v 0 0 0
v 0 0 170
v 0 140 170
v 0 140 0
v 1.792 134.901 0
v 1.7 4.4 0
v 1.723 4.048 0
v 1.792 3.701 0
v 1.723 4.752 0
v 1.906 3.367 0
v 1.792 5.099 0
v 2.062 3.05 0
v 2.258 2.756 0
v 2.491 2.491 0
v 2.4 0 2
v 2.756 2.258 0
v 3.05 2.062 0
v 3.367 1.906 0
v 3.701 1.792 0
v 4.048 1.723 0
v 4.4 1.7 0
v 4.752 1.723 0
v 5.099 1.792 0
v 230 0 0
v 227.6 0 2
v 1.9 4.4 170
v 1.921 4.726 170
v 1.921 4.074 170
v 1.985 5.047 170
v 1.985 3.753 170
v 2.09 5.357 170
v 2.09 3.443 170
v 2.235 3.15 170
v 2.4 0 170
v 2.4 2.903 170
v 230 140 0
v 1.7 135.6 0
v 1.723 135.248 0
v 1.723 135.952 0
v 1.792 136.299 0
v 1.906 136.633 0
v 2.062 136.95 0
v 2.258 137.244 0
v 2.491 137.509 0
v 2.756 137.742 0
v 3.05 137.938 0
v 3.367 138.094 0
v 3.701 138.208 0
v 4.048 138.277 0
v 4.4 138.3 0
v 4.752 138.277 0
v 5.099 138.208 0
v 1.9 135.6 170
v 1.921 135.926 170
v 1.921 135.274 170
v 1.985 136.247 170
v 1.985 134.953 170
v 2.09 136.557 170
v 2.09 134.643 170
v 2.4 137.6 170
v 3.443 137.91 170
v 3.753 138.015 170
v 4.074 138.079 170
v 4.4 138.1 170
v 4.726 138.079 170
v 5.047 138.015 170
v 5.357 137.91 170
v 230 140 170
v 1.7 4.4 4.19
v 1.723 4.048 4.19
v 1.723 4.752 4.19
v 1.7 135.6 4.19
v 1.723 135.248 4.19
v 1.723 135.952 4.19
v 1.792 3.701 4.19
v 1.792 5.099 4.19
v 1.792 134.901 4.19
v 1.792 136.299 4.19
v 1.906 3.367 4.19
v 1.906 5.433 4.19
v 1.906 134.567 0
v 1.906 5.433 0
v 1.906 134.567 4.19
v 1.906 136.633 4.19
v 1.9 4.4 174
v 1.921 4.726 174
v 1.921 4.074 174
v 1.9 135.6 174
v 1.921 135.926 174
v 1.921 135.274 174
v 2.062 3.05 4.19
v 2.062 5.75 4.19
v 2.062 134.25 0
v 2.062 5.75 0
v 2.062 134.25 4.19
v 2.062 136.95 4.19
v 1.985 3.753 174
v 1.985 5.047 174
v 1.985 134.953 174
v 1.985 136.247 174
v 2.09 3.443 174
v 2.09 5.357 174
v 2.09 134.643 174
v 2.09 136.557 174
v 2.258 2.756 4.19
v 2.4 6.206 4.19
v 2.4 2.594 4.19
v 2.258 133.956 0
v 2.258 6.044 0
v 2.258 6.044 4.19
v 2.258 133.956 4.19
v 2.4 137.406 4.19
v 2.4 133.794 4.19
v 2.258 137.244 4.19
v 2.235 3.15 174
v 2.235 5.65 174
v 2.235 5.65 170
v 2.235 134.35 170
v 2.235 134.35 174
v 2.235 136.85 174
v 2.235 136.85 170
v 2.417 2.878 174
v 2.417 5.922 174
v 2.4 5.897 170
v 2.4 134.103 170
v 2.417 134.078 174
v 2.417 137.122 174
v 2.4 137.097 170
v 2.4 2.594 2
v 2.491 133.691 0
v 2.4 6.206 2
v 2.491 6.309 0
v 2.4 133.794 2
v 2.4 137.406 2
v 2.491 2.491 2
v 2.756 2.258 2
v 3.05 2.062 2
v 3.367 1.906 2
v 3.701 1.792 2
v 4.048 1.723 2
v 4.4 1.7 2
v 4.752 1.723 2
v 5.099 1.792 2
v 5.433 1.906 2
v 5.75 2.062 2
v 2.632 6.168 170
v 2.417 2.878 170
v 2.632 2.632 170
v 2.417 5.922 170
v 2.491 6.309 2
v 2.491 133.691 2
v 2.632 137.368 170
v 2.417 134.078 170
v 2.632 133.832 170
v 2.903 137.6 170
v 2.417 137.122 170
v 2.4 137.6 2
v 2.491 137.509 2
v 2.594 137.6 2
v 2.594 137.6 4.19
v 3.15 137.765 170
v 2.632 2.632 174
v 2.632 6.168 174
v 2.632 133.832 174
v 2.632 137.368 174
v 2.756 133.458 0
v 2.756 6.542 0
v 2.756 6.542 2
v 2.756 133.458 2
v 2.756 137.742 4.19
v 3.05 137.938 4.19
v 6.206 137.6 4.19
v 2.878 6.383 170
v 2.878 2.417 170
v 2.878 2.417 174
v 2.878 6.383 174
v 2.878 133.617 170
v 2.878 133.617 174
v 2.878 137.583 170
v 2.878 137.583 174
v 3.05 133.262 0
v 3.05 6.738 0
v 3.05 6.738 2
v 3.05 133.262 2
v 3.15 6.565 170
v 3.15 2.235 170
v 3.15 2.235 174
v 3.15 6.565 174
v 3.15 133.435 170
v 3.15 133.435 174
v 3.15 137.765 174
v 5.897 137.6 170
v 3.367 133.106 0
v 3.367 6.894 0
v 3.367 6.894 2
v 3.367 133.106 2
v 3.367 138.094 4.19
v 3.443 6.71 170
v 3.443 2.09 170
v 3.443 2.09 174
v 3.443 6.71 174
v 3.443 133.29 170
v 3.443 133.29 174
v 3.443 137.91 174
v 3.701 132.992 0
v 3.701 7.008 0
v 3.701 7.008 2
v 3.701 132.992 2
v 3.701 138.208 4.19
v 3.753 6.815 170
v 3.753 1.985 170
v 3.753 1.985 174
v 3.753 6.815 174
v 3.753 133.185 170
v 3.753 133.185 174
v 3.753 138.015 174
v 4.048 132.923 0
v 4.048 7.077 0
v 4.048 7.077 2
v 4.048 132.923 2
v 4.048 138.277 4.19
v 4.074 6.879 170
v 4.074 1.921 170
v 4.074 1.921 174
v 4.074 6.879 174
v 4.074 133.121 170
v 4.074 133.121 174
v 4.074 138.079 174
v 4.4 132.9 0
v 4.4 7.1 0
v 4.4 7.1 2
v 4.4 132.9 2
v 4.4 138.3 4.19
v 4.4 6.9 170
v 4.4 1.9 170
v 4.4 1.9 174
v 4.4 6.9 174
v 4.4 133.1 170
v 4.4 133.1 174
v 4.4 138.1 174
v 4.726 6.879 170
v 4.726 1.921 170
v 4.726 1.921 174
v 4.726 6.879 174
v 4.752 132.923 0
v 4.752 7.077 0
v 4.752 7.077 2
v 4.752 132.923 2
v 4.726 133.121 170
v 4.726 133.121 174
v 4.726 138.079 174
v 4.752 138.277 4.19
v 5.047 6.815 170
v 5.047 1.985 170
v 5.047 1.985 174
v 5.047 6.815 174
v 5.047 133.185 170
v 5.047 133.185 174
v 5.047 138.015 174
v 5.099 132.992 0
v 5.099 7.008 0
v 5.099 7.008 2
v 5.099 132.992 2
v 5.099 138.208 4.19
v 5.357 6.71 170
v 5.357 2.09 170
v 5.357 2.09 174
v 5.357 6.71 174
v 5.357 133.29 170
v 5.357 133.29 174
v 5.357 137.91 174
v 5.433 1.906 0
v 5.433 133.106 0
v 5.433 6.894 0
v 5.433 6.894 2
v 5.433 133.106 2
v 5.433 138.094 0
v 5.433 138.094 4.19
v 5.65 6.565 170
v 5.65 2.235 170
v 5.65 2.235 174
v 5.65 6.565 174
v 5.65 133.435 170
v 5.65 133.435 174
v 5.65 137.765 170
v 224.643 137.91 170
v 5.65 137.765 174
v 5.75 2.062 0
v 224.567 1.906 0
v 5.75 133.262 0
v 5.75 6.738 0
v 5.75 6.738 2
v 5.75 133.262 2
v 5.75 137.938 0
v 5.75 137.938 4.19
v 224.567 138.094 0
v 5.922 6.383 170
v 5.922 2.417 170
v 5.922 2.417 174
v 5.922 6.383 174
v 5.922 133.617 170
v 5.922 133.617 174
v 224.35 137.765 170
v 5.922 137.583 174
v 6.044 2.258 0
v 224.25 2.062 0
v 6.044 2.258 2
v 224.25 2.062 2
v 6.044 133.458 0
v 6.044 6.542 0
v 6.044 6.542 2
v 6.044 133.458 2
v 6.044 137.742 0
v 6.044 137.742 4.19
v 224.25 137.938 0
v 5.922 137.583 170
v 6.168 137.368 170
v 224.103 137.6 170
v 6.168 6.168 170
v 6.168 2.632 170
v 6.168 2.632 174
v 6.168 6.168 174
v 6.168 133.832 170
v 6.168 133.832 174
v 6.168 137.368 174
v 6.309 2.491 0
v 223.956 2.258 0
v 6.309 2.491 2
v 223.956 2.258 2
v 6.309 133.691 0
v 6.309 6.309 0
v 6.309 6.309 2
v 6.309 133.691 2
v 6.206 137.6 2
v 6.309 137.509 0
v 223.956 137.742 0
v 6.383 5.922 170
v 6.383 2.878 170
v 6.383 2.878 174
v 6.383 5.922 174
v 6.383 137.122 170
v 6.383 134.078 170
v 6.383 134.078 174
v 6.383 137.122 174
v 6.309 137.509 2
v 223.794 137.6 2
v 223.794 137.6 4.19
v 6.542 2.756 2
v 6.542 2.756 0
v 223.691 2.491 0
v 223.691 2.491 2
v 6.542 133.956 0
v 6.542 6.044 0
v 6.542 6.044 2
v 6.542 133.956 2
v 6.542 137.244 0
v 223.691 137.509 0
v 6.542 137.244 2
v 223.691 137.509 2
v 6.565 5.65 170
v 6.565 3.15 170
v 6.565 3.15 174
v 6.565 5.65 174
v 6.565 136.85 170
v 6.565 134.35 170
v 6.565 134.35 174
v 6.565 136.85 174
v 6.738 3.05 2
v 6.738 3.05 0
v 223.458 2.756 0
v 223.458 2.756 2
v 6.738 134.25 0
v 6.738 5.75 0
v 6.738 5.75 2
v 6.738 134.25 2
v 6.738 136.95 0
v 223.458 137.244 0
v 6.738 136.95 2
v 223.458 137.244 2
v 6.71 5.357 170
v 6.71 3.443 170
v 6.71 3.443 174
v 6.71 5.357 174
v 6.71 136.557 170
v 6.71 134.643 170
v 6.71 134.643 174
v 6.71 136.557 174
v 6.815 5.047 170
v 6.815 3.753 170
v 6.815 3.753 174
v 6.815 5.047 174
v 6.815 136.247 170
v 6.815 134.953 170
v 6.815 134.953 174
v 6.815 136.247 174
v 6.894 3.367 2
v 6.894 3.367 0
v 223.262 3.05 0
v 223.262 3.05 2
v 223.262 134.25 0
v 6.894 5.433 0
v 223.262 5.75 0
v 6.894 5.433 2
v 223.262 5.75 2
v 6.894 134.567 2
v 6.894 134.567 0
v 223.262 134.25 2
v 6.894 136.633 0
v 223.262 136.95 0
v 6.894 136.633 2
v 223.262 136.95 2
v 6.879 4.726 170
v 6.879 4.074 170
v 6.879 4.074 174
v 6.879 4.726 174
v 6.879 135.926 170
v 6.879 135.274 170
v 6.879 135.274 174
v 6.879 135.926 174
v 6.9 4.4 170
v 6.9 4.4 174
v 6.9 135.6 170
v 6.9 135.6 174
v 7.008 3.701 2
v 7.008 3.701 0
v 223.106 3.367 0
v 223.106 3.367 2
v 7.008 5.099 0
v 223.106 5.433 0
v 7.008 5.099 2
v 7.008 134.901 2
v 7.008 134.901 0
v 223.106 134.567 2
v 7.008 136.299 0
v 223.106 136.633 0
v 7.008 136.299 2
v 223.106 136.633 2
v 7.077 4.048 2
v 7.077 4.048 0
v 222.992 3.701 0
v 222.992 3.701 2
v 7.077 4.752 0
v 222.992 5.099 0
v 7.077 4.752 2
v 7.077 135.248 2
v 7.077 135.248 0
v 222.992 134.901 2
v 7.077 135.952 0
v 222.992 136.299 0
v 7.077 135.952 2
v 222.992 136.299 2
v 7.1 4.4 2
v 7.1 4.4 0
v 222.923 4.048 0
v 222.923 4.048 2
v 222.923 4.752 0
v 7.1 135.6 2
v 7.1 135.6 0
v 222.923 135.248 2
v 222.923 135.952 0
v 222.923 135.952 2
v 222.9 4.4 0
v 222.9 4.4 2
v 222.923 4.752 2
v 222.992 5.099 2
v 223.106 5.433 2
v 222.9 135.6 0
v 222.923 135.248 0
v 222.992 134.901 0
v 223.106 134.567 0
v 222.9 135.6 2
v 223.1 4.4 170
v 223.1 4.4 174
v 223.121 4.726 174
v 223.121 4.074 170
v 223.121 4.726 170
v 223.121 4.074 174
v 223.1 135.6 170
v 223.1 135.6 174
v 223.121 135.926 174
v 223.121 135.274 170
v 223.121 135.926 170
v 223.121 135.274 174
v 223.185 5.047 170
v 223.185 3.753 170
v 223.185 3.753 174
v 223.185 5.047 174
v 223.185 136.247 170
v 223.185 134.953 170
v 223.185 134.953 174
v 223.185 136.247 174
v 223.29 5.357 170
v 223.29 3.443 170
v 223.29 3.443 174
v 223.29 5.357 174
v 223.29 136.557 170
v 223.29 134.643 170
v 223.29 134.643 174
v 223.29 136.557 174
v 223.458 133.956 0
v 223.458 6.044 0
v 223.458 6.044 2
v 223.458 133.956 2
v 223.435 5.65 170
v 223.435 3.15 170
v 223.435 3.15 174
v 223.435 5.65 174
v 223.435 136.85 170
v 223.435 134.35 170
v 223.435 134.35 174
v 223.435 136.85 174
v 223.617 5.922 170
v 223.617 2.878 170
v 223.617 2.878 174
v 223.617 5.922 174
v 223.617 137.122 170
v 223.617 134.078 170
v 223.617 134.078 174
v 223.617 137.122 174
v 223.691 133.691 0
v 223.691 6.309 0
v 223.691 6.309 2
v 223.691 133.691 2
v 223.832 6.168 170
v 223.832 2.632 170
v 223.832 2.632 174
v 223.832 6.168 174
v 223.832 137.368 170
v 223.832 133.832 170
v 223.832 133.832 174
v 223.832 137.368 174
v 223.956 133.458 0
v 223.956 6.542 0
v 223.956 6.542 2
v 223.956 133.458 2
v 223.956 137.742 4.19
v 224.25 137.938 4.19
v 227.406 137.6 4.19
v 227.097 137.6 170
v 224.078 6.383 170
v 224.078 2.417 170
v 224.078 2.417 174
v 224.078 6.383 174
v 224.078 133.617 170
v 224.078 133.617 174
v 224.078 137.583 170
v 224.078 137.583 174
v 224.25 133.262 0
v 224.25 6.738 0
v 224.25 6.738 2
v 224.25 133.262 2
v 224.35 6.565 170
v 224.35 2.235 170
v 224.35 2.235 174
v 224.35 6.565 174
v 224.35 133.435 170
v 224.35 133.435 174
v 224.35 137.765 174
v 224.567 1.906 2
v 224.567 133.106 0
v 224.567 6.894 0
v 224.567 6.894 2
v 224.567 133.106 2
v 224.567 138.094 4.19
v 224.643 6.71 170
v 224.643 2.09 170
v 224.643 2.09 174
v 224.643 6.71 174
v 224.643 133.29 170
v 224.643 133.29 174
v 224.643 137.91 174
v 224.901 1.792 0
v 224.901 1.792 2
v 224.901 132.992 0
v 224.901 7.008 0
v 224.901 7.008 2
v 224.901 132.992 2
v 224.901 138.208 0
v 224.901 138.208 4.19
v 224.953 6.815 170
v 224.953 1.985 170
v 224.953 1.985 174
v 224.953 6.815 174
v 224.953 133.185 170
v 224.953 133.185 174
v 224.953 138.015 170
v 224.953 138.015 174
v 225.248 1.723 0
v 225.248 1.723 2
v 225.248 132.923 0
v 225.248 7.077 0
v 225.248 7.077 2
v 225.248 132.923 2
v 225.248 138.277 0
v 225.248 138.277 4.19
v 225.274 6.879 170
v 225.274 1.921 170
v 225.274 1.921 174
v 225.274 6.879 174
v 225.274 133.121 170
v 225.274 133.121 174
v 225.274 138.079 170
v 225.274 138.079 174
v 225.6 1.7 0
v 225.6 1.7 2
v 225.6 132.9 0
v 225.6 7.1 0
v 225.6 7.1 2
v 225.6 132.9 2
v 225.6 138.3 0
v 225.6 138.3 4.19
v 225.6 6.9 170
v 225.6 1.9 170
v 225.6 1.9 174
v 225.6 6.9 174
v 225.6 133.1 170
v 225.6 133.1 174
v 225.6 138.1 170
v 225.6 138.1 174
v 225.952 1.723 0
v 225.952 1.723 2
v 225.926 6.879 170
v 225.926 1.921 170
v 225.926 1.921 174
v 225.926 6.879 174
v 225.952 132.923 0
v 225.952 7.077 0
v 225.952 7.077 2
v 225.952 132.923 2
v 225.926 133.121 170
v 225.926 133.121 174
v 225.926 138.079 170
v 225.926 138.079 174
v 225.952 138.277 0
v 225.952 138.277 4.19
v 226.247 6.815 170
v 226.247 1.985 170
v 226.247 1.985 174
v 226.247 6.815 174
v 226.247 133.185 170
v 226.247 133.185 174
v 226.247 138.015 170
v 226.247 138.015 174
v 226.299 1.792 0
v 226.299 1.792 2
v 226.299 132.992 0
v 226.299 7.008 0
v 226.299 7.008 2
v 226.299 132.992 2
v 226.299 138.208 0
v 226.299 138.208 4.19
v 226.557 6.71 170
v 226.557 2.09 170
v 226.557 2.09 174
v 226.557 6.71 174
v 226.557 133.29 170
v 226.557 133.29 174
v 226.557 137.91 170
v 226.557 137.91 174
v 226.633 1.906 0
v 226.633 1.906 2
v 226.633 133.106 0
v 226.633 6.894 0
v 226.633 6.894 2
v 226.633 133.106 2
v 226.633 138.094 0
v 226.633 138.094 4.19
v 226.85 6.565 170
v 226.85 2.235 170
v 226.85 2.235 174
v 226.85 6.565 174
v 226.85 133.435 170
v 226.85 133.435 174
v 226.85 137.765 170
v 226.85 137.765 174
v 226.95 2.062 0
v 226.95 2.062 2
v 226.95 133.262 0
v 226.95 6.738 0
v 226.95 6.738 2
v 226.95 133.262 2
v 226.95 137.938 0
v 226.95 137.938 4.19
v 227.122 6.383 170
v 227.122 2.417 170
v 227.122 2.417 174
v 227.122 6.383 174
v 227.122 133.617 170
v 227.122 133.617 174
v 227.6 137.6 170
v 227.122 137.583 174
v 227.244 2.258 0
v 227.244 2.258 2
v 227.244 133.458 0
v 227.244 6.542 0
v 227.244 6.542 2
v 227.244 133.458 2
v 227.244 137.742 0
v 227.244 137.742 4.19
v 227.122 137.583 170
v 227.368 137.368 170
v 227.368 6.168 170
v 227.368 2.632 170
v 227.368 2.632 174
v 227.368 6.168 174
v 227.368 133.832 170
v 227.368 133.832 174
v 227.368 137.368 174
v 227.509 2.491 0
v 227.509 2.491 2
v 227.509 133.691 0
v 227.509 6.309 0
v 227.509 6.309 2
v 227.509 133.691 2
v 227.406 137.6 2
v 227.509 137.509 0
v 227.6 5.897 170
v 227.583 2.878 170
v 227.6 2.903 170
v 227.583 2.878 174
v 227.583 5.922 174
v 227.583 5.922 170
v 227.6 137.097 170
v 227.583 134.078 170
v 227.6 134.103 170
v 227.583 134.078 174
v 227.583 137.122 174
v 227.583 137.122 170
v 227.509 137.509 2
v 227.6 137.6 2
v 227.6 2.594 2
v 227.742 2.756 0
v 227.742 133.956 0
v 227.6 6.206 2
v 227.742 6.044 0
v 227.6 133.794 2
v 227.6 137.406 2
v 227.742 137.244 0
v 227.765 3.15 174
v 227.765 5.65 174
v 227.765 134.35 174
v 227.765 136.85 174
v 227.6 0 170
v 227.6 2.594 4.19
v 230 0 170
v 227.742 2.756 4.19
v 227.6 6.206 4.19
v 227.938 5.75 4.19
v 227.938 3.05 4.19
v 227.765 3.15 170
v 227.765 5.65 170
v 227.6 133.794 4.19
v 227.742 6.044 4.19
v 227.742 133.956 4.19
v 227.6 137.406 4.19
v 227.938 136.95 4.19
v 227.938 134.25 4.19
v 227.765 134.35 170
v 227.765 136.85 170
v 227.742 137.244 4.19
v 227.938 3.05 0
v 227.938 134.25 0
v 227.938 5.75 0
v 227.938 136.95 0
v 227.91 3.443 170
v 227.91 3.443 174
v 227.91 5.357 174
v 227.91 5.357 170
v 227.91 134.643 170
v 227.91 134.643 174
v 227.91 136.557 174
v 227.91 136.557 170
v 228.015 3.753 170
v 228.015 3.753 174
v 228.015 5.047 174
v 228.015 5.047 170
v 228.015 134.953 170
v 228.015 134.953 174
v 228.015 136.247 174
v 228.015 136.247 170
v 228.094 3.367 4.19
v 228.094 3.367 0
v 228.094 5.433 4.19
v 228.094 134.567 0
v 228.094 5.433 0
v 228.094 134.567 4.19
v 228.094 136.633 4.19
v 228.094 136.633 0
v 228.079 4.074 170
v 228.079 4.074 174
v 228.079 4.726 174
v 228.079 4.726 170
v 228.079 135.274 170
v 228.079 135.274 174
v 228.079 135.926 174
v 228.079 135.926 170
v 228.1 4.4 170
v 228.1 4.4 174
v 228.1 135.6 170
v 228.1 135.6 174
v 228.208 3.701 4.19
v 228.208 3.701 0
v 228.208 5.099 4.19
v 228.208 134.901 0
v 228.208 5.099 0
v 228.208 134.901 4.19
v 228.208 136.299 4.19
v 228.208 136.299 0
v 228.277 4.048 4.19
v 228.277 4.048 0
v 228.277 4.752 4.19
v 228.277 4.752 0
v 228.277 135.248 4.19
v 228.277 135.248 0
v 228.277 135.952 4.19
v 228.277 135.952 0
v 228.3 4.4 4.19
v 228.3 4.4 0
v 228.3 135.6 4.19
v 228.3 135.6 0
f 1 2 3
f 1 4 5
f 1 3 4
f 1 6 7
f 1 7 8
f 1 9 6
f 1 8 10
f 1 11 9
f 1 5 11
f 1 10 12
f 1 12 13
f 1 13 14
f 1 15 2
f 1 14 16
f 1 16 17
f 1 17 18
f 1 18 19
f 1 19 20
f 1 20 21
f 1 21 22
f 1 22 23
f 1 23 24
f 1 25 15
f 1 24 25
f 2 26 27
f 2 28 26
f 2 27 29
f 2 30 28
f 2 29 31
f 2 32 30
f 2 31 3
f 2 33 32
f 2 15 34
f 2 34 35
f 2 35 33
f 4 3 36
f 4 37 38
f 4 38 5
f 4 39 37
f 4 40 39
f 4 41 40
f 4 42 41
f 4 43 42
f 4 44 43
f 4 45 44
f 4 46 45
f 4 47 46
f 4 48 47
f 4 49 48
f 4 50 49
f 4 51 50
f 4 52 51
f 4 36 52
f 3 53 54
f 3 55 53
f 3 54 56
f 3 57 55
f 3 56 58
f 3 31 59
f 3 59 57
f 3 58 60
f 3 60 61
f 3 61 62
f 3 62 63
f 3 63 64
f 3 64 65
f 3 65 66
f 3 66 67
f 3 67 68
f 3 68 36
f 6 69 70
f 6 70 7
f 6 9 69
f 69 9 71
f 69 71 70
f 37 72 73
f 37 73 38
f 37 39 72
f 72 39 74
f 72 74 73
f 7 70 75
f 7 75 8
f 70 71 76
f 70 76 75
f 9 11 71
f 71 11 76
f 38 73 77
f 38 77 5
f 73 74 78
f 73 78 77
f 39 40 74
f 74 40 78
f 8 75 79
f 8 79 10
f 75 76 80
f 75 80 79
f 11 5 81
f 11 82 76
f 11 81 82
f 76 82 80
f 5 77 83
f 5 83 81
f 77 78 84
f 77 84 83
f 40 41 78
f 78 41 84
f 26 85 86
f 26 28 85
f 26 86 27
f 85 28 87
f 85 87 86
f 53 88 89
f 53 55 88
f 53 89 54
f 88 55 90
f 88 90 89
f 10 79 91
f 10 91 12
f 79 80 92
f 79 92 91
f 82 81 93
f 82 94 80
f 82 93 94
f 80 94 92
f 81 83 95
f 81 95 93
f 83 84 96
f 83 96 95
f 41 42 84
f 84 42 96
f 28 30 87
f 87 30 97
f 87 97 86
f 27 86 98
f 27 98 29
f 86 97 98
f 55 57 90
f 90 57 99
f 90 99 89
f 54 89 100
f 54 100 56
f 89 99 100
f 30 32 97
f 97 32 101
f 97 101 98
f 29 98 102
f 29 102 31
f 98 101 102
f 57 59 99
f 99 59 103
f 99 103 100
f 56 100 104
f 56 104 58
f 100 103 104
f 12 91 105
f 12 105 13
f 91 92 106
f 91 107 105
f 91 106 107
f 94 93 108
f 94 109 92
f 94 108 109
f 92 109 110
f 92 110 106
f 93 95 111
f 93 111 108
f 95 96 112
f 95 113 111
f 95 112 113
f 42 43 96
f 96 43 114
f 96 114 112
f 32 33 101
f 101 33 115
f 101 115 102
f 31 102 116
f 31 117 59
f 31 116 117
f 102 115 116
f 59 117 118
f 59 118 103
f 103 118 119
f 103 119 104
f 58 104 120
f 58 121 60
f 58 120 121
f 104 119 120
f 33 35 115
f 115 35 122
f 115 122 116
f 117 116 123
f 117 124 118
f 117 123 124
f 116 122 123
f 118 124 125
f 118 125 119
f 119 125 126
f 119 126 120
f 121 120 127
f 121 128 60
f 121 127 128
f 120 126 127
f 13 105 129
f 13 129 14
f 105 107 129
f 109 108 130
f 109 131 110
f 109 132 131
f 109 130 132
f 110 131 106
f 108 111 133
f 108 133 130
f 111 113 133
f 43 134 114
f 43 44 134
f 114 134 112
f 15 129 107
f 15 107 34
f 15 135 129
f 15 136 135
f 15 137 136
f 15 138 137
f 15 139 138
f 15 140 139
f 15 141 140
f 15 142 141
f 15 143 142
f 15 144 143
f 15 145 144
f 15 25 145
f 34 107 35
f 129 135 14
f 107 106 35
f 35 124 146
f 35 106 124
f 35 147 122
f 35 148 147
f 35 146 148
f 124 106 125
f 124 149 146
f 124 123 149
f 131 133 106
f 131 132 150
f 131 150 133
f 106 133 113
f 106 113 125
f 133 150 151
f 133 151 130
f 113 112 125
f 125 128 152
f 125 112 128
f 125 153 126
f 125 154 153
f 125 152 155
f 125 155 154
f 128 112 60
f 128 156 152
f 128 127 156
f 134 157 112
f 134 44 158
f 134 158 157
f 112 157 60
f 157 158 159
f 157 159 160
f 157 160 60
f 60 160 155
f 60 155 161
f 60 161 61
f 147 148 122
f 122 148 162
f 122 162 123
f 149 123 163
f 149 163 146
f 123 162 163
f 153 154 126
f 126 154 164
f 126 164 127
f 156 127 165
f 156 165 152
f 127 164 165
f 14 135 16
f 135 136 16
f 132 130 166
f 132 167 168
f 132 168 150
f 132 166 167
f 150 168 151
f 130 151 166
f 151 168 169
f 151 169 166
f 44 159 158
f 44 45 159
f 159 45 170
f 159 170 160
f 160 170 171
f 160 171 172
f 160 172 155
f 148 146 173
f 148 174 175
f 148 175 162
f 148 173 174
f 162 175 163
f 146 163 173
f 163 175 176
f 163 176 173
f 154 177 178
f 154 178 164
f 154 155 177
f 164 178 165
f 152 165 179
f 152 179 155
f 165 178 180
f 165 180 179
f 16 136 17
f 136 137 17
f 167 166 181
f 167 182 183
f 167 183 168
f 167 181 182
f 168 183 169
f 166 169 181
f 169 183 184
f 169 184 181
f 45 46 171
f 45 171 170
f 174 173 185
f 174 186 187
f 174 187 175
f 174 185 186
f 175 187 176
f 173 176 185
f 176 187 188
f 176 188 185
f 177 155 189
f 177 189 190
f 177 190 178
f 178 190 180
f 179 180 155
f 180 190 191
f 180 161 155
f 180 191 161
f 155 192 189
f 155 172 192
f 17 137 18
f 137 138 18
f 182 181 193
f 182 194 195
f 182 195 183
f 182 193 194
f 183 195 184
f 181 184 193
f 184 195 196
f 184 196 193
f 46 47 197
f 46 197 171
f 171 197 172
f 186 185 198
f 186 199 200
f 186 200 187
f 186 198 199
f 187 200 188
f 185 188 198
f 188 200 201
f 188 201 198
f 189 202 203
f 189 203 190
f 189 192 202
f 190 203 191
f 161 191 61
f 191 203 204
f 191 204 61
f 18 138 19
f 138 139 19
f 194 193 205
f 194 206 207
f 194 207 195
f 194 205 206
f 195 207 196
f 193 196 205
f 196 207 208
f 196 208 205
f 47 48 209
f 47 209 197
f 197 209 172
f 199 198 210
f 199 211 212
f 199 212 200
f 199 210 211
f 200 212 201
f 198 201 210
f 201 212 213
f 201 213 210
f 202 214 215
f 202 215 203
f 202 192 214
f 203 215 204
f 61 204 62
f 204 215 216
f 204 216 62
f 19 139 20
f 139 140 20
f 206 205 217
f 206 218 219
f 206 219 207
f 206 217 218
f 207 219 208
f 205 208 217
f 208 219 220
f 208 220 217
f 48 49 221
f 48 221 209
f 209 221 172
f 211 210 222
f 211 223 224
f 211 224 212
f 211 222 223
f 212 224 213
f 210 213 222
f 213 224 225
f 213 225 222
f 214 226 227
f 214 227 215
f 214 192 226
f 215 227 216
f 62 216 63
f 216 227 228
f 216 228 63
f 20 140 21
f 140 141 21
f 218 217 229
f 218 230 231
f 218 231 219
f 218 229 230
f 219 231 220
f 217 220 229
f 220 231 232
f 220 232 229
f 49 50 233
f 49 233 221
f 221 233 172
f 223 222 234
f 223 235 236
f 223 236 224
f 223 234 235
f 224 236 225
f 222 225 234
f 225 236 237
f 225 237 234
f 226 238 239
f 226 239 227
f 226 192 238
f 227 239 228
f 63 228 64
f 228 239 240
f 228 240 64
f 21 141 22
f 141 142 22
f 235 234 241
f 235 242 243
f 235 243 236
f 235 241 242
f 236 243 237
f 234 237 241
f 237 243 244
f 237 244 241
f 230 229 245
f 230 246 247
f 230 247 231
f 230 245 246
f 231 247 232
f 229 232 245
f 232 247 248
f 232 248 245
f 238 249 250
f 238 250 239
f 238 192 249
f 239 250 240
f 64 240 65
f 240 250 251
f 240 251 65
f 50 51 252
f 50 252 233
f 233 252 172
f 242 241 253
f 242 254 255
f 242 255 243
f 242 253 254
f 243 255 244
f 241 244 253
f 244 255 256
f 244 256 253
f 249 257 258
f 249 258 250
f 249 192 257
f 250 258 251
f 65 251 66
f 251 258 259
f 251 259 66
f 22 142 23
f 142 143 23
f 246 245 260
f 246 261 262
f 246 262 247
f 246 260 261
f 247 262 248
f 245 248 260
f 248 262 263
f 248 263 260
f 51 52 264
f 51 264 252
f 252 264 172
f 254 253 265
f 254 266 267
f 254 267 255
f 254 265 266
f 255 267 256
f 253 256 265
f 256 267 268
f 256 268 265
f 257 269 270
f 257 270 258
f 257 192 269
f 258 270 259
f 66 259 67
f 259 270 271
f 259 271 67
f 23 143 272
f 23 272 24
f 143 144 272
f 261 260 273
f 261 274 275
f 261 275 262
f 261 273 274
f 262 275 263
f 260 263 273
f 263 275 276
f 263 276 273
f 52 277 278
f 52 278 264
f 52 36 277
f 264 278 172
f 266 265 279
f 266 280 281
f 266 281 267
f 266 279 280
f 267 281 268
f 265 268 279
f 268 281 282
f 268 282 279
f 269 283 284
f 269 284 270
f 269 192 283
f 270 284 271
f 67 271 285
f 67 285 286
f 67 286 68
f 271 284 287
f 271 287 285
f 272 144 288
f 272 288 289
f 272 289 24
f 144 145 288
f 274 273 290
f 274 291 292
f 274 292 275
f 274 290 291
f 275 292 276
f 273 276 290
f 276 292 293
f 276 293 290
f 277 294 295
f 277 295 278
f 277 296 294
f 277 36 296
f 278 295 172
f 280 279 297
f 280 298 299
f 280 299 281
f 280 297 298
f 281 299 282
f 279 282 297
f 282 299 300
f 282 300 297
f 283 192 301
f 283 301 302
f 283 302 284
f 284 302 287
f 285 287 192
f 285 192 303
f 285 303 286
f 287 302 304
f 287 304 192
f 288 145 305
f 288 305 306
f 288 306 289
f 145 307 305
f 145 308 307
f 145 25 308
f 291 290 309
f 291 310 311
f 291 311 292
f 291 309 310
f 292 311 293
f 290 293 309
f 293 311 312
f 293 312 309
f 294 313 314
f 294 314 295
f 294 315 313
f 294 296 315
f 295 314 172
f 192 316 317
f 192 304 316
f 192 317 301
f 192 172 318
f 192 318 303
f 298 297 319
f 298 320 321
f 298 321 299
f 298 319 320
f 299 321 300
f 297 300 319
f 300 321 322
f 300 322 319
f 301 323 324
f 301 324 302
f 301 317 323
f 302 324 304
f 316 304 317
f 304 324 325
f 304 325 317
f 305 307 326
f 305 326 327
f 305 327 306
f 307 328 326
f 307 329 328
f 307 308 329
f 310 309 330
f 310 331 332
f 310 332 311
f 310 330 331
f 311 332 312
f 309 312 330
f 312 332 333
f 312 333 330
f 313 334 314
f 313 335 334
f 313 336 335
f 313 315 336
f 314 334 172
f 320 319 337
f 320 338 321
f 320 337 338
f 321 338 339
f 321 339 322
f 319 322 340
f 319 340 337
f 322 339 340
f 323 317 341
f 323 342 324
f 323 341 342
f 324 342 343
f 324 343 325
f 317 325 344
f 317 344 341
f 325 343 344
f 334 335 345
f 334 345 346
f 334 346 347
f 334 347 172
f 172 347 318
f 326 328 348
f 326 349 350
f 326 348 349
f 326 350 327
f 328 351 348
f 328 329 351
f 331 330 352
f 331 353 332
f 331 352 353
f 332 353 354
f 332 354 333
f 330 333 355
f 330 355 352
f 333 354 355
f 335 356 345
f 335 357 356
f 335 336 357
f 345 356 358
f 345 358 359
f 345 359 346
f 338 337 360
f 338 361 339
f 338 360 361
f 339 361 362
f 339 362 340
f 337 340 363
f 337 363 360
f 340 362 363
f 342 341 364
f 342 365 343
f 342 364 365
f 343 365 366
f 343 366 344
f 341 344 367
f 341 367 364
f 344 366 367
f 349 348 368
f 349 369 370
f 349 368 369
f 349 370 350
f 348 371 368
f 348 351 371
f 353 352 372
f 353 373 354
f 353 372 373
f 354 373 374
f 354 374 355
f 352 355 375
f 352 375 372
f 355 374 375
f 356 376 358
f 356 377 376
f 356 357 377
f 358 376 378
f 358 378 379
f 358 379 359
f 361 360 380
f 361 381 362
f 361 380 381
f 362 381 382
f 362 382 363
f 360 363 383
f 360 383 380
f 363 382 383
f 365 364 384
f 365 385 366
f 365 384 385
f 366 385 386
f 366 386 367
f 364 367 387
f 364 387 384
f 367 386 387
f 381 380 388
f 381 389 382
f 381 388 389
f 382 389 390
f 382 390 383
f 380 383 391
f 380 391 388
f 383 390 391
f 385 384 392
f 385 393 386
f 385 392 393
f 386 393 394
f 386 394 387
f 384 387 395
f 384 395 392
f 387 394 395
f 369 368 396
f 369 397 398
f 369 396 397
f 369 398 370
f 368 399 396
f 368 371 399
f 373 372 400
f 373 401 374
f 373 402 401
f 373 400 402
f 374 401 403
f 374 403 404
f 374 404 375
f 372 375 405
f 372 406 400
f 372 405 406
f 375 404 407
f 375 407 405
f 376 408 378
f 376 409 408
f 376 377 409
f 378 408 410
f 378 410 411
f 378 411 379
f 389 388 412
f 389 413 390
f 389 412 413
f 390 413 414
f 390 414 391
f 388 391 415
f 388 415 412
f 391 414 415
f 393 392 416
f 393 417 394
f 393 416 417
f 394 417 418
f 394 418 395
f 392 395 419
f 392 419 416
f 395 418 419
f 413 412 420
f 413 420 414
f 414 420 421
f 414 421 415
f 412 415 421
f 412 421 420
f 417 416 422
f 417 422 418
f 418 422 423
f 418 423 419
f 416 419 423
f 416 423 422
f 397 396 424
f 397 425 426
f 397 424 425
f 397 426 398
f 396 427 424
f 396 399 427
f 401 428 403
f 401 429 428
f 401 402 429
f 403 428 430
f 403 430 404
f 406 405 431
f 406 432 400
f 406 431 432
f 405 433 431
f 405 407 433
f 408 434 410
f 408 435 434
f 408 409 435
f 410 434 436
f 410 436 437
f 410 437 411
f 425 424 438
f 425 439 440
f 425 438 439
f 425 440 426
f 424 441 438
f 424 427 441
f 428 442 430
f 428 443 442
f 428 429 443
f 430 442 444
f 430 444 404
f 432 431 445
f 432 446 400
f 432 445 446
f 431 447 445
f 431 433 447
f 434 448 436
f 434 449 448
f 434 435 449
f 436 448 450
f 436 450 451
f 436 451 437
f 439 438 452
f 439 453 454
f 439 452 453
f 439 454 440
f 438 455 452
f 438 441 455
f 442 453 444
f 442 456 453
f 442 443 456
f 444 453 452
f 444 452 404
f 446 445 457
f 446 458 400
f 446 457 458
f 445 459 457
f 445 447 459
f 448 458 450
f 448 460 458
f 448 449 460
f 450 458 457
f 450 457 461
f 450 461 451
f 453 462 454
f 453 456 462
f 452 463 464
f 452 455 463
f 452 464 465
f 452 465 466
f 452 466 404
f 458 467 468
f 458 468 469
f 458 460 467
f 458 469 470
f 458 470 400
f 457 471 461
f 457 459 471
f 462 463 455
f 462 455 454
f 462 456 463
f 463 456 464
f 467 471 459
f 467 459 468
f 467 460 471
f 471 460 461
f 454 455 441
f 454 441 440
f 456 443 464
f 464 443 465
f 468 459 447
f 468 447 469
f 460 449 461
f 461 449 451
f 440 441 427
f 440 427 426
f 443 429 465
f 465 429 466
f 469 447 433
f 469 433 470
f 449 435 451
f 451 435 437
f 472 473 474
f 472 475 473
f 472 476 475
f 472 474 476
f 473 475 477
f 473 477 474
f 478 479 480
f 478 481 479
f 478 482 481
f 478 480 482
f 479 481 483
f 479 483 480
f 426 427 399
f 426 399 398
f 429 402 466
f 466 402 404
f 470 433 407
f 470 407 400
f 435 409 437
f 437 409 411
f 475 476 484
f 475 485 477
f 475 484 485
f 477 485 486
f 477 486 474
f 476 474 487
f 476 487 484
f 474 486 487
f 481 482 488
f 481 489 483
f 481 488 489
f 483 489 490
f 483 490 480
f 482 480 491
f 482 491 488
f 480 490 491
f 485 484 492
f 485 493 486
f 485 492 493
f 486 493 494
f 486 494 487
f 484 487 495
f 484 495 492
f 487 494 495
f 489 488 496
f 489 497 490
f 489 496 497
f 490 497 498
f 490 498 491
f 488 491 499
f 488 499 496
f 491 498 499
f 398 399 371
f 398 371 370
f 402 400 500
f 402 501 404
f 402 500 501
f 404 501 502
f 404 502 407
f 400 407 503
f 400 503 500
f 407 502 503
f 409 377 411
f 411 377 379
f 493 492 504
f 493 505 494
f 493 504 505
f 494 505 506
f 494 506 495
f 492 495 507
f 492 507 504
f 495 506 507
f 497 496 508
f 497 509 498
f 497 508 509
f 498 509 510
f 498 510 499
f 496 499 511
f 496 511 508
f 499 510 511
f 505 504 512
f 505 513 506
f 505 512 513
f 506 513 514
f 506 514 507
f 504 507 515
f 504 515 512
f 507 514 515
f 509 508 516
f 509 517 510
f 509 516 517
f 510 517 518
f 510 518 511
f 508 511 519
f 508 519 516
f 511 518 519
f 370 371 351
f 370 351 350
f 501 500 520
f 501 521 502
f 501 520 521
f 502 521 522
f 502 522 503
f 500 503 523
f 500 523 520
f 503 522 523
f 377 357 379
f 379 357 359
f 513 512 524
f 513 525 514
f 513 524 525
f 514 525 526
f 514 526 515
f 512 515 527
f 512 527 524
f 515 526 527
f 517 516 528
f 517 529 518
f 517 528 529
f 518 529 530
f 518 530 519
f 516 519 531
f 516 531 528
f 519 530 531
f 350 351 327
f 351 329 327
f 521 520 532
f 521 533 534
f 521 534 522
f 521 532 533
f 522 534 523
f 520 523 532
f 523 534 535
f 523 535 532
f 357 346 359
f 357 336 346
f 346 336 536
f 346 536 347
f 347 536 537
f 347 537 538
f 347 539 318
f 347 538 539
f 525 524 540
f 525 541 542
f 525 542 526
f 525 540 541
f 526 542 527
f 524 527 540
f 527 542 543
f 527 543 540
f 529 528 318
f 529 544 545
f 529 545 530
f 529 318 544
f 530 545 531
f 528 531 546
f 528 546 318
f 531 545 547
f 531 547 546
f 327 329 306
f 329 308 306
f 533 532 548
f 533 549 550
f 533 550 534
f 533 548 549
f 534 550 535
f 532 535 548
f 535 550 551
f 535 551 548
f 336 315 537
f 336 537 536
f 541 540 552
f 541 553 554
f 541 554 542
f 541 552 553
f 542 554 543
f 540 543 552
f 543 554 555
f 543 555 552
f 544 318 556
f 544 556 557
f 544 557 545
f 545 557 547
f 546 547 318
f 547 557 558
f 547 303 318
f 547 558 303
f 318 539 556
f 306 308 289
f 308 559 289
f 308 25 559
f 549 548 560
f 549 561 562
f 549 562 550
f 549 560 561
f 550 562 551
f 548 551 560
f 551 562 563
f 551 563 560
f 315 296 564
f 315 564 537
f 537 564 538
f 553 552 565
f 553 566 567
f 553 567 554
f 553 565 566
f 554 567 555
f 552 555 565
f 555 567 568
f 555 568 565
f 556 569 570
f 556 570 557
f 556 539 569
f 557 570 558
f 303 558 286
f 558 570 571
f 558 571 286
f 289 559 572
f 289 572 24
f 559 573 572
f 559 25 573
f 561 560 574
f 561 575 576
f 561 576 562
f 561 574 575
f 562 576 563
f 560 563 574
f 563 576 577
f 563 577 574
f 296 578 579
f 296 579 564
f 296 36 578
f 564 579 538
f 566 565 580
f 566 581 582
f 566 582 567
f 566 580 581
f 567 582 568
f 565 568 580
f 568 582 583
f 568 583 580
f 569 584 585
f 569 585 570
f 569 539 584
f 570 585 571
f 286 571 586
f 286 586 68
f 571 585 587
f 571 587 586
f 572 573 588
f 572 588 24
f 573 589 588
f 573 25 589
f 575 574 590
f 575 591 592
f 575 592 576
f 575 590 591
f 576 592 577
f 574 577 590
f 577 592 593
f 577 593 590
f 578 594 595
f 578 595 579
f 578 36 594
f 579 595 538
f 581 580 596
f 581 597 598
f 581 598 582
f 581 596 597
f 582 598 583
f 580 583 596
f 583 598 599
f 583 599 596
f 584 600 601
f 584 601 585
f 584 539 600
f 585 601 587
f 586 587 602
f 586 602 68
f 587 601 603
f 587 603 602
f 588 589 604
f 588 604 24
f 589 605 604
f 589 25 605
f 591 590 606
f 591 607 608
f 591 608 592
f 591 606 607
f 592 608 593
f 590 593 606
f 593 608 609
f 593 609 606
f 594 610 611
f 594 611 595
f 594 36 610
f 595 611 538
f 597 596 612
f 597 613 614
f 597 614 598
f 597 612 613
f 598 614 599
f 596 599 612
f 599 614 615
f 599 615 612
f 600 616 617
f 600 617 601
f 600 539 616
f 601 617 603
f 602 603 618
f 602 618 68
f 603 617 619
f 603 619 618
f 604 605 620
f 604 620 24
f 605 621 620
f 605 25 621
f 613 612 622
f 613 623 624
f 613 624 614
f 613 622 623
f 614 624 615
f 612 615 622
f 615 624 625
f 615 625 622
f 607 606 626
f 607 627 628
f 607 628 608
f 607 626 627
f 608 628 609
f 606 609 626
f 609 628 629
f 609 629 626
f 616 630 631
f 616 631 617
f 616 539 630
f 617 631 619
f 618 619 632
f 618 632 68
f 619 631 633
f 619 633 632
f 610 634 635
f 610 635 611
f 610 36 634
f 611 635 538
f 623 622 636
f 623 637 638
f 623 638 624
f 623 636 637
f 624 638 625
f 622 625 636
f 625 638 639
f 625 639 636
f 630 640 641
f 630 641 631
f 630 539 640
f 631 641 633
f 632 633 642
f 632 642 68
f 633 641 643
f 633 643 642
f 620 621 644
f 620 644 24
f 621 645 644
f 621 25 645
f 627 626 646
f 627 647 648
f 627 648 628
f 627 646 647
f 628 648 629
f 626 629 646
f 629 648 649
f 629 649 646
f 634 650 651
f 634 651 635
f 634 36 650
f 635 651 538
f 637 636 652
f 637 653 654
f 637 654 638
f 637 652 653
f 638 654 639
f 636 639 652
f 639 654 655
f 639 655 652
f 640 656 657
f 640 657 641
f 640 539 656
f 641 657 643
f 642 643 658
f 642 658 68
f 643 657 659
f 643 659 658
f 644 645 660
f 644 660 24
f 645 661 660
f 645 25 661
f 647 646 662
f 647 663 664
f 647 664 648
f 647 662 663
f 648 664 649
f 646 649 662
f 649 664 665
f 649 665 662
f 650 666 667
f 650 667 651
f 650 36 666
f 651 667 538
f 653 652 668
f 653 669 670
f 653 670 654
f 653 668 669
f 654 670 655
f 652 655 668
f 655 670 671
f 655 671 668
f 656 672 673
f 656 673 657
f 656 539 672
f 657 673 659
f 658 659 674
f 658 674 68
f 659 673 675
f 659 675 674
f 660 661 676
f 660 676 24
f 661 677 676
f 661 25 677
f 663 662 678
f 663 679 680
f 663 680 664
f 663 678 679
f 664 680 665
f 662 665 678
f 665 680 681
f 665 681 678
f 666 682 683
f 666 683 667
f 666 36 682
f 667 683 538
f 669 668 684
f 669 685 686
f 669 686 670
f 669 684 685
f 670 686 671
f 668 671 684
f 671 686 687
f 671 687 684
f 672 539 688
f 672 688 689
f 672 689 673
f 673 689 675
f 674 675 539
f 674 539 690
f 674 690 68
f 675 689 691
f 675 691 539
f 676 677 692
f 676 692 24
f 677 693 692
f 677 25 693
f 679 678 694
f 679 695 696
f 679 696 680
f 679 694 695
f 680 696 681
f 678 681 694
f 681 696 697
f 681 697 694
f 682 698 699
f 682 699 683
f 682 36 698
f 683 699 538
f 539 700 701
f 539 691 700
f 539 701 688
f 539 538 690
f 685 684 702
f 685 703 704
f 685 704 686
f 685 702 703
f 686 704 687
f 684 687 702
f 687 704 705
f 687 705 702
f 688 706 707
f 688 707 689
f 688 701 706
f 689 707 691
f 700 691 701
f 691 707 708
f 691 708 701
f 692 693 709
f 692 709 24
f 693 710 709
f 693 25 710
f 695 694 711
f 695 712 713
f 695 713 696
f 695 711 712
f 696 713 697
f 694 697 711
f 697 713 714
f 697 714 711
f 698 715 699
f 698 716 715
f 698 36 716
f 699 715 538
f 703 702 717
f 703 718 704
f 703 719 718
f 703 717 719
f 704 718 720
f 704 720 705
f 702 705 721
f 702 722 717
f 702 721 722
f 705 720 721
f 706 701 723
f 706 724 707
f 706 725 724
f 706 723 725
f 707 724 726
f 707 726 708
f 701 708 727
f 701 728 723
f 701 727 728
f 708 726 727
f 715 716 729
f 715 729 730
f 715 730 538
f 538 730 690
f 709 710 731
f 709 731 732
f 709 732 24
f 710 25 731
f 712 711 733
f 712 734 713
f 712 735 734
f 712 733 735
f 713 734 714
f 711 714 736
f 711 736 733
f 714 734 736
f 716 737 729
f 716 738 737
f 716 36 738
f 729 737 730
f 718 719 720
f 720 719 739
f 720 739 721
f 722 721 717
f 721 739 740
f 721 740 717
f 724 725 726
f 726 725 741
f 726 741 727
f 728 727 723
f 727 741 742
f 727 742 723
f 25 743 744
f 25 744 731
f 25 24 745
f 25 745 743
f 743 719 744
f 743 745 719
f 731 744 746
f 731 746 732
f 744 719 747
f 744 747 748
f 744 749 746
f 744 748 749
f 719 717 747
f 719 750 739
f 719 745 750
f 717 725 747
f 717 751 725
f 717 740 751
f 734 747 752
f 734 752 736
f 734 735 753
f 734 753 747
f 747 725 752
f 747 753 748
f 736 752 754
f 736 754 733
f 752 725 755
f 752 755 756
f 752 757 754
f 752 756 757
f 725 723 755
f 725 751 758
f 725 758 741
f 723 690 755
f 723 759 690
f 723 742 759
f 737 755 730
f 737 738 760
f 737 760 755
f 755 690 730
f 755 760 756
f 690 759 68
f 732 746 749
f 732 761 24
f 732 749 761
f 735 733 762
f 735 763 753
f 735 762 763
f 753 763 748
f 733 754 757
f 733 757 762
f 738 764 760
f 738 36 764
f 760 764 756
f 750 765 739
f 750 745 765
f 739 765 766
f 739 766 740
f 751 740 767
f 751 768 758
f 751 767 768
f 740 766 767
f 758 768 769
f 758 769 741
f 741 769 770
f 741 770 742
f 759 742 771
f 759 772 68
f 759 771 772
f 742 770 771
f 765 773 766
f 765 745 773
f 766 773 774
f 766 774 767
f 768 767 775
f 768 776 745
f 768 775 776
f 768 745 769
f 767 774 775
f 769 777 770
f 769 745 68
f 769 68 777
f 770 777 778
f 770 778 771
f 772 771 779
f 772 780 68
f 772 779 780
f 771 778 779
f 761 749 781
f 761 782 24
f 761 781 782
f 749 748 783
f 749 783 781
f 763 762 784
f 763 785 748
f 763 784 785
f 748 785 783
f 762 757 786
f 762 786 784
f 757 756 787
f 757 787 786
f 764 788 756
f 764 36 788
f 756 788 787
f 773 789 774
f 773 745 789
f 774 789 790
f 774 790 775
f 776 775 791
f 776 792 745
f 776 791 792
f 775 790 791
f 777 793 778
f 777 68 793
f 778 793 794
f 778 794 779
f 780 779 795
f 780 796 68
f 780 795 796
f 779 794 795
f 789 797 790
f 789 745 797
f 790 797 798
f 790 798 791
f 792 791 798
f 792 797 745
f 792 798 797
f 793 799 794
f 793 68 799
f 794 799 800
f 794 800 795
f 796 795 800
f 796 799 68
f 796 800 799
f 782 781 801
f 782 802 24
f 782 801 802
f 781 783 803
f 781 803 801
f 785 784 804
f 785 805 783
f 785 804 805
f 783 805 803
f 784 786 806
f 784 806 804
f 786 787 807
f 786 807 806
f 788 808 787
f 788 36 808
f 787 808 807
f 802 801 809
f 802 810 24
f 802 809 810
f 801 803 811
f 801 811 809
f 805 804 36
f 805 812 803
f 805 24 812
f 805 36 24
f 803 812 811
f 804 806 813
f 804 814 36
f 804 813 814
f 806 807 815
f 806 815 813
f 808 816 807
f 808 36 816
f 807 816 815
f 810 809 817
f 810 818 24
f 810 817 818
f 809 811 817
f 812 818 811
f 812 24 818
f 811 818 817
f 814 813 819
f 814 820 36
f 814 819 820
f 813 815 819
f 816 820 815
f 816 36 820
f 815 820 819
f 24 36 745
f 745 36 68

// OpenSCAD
// Print Shelving — Tall Stackable Tier
//
// Same footprint + stacking-peg layout as shelf-tier.scad, but with
// 170 mm interior height — fits the 152 mm measuring cylinder
// standing upright, or a Kirby Waste Eater.
//
// Print time: ~5 hours at 0.24 mm draft.

$fn = 48;

W        = 230;
D        = 140;
H        = 170;  // taller
WALL     = 2.4;
FLOOR    = 2.0;
PEG_D    = 5.0;
PEG_H    = 4.0;
HOLE_D   = 5.4;
HOLE_H   = 4.2;
CORNER_INSET = WALL + 2;

PEG_POSITIONS = [
    [CORNER_INSET,         CORNER_INSET],
    [W - CORNER_INSET,     CORNER_INSET],
    [CORNER_INSET,         D - CORNER_INSET],
    [W - CORNER_INSET,     D - CORNER_INSET],
];

module tier_body() {
    union() {
        cube([W, D, FLOOR]);
        translate([0, D - WALL, 0]) cube([W, WALL, H]);
        cube([WALL, D, H]);
        translate([W - WALL, 0, 0]) cube([WALL, D, H]);
        for (p = PEG_POSITIONS)
            translate([p[0], p[1], H]) cylinder(h = PEG_H, d = PEG_D);
    }
}

difference() {
    tier_body();
    for (p = PEG_POSITIONS)
        translate([p[0], p[1], -0.01]) cylinder(h = HOLE_H, d = HOLE_D);
}
